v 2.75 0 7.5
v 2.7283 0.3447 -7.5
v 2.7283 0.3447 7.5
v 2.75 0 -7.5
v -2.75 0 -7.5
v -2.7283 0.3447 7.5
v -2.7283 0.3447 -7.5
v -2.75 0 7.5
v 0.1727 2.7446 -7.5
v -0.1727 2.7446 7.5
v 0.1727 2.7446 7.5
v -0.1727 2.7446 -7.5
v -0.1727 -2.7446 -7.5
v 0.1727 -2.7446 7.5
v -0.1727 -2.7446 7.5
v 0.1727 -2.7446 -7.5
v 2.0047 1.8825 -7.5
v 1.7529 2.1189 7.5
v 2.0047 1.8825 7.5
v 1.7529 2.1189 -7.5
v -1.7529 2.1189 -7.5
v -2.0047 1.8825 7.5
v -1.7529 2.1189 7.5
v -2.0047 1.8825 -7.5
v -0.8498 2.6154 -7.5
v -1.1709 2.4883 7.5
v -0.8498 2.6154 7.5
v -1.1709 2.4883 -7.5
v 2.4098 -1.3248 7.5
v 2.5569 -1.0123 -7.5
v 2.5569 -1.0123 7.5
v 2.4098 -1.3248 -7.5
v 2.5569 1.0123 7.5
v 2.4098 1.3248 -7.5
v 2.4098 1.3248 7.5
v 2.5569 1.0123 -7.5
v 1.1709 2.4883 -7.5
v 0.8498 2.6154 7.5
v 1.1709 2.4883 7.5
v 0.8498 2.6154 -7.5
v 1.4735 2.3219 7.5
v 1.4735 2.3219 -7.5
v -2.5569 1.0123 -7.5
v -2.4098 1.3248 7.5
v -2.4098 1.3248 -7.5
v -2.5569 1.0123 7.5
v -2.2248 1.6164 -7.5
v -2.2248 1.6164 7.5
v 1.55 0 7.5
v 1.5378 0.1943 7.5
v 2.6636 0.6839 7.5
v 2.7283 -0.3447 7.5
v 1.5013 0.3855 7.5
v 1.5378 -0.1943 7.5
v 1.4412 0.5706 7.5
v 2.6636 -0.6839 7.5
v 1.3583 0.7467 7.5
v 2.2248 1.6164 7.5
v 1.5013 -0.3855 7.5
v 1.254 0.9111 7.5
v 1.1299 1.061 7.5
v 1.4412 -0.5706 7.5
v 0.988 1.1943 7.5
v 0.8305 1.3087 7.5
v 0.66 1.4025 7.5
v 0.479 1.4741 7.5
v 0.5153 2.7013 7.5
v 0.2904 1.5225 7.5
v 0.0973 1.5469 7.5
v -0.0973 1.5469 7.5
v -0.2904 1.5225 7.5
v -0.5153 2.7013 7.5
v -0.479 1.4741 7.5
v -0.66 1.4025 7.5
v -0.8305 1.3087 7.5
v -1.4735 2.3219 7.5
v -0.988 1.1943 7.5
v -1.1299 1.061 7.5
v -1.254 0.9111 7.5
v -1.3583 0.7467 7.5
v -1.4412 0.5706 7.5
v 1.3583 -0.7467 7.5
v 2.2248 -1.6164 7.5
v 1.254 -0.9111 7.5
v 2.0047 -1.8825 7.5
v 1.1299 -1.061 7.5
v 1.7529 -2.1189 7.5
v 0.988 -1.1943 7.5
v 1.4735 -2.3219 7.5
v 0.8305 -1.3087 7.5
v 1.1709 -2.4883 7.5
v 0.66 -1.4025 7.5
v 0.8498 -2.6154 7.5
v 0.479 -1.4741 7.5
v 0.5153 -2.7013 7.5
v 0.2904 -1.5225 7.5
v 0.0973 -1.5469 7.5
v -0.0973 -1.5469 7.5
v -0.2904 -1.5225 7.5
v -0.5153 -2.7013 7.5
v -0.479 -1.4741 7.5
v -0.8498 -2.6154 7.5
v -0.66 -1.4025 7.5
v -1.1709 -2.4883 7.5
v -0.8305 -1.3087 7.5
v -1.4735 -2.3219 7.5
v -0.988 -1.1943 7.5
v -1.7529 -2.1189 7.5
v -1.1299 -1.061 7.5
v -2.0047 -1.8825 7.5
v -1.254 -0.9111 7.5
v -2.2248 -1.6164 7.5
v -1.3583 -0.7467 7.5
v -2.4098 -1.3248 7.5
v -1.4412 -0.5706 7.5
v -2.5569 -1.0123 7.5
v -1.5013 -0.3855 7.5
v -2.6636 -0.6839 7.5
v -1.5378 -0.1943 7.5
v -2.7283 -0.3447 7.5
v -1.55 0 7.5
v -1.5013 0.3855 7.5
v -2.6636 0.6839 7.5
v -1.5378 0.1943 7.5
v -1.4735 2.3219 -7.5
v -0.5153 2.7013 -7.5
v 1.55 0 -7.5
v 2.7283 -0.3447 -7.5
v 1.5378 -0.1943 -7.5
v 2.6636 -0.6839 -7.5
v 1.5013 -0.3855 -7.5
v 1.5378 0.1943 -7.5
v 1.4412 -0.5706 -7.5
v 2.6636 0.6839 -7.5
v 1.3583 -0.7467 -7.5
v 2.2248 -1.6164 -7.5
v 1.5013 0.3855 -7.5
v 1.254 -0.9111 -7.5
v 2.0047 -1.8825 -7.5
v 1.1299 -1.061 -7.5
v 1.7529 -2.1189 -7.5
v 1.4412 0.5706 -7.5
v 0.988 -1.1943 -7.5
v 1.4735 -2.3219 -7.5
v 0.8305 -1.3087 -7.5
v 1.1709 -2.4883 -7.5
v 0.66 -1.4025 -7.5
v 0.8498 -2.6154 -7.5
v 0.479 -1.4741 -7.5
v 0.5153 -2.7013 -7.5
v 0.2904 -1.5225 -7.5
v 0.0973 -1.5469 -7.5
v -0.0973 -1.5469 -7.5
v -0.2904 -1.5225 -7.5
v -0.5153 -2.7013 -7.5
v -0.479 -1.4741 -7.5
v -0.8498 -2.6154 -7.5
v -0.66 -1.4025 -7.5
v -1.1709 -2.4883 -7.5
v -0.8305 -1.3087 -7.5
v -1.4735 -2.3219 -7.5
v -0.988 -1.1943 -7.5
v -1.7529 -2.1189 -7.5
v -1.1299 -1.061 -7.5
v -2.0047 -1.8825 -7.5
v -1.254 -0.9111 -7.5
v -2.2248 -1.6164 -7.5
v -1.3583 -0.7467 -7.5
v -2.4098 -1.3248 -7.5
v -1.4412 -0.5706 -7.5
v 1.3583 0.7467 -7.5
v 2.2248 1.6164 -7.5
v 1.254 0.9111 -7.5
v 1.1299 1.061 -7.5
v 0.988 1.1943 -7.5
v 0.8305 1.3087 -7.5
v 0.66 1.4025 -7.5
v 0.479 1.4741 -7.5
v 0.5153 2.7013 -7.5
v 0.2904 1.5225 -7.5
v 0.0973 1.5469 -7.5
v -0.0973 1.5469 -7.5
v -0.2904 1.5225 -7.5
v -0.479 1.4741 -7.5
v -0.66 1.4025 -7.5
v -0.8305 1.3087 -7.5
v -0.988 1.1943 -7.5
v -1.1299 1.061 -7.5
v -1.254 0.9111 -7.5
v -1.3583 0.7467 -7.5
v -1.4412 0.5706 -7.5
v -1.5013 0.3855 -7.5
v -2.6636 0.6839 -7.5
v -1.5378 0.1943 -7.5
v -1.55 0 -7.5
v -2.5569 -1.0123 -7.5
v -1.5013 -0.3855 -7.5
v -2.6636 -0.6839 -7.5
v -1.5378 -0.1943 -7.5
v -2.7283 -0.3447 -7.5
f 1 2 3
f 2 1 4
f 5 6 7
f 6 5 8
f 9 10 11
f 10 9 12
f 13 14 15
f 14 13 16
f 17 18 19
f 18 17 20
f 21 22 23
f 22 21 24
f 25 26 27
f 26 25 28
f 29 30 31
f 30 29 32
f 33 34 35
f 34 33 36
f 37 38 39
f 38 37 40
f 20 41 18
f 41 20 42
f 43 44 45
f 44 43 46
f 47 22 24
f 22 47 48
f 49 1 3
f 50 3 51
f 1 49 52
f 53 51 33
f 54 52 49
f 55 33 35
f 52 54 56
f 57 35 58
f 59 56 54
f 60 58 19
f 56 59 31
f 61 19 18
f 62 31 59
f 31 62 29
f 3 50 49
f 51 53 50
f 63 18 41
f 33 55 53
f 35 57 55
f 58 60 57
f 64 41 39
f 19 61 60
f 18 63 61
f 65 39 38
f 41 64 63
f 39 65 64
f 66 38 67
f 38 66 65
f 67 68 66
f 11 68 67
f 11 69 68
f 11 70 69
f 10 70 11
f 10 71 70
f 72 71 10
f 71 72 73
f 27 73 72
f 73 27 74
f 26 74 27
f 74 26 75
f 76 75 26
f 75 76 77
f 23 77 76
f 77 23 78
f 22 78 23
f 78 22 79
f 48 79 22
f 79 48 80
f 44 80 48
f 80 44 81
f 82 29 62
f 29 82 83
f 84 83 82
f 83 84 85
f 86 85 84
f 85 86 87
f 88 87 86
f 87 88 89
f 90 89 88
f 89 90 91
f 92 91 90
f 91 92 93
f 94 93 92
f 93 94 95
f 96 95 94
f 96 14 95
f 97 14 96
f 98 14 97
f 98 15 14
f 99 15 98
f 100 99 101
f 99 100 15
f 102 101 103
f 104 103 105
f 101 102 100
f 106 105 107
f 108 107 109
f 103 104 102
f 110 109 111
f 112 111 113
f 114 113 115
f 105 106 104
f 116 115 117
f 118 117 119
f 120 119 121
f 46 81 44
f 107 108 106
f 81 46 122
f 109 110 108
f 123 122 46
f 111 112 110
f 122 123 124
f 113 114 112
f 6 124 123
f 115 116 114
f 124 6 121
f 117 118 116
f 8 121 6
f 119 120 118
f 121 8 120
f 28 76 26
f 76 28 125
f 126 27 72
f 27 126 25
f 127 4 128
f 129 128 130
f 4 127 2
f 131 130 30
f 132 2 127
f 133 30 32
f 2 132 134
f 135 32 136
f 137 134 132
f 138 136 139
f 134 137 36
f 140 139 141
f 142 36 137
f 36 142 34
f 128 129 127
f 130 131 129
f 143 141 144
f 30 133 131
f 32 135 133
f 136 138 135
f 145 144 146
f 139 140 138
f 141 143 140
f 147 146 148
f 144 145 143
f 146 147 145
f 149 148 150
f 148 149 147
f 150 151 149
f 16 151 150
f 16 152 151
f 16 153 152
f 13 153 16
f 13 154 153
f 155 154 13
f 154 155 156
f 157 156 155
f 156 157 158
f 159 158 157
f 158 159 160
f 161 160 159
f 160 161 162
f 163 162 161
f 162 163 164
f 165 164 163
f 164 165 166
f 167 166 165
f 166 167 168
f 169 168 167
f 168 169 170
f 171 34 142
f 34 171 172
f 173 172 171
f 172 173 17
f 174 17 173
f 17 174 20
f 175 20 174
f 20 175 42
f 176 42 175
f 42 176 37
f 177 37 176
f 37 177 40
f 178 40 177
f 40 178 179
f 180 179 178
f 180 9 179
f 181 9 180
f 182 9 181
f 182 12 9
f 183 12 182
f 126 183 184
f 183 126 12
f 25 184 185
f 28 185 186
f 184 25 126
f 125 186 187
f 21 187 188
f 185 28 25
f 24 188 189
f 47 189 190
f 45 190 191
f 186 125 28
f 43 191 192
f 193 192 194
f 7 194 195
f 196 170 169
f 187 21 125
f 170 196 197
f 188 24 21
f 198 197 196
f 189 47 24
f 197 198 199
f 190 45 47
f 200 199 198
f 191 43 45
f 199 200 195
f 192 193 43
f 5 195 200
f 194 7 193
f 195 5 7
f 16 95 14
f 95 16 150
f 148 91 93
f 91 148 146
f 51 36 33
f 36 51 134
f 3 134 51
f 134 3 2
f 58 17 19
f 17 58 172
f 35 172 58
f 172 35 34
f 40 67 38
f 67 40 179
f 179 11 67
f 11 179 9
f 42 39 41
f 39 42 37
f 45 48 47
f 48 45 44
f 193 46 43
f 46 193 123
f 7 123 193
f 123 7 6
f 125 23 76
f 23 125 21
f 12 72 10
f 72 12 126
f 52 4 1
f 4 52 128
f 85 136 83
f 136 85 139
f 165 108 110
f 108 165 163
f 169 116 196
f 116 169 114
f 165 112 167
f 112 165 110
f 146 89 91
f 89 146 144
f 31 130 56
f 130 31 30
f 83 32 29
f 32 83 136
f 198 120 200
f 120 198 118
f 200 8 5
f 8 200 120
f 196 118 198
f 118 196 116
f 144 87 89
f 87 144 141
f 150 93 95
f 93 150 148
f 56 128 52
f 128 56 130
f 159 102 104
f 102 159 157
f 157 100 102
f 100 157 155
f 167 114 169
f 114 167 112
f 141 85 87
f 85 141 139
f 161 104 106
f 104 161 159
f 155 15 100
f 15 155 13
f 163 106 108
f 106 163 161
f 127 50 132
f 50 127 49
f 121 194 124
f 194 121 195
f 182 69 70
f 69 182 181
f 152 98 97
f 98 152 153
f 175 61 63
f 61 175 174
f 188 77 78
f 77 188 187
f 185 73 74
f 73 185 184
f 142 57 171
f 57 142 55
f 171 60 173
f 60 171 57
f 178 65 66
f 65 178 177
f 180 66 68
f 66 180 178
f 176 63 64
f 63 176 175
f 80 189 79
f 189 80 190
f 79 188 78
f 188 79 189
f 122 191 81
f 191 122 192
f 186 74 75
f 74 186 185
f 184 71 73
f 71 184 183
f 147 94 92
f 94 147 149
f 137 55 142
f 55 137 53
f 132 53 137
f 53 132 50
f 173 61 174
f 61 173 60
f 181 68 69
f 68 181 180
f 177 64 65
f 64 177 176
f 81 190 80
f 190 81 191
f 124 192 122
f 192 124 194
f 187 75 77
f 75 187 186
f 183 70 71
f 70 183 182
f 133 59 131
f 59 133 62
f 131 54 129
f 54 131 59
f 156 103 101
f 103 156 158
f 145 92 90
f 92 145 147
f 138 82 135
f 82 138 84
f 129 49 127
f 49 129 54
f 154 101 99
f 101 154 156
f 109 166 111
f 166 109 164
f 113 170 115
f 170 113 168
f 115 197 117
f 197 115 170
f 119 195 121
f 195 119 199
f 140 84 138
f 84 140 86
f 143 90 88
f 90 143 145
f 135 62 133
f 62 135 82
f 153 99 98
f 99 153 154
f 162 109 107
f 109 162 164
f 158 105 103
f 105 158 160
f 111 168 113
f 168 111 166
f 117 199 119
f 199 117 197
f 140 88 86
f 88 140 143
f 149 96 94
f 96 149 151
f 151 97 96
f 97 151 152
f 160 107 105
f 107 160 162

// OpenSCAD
$fn = 50;


difference() {
	union() {
		translate(v = [0, 0, -7.5000000000]) {
			cylinder(h = 15, r = 2.7500000000);
		}
	}
	union() {
		translate(v = [0, 0, -100.0000000000]) {
			cylinder(h = 200, r = 1.5500000000);
		}
	}
}
